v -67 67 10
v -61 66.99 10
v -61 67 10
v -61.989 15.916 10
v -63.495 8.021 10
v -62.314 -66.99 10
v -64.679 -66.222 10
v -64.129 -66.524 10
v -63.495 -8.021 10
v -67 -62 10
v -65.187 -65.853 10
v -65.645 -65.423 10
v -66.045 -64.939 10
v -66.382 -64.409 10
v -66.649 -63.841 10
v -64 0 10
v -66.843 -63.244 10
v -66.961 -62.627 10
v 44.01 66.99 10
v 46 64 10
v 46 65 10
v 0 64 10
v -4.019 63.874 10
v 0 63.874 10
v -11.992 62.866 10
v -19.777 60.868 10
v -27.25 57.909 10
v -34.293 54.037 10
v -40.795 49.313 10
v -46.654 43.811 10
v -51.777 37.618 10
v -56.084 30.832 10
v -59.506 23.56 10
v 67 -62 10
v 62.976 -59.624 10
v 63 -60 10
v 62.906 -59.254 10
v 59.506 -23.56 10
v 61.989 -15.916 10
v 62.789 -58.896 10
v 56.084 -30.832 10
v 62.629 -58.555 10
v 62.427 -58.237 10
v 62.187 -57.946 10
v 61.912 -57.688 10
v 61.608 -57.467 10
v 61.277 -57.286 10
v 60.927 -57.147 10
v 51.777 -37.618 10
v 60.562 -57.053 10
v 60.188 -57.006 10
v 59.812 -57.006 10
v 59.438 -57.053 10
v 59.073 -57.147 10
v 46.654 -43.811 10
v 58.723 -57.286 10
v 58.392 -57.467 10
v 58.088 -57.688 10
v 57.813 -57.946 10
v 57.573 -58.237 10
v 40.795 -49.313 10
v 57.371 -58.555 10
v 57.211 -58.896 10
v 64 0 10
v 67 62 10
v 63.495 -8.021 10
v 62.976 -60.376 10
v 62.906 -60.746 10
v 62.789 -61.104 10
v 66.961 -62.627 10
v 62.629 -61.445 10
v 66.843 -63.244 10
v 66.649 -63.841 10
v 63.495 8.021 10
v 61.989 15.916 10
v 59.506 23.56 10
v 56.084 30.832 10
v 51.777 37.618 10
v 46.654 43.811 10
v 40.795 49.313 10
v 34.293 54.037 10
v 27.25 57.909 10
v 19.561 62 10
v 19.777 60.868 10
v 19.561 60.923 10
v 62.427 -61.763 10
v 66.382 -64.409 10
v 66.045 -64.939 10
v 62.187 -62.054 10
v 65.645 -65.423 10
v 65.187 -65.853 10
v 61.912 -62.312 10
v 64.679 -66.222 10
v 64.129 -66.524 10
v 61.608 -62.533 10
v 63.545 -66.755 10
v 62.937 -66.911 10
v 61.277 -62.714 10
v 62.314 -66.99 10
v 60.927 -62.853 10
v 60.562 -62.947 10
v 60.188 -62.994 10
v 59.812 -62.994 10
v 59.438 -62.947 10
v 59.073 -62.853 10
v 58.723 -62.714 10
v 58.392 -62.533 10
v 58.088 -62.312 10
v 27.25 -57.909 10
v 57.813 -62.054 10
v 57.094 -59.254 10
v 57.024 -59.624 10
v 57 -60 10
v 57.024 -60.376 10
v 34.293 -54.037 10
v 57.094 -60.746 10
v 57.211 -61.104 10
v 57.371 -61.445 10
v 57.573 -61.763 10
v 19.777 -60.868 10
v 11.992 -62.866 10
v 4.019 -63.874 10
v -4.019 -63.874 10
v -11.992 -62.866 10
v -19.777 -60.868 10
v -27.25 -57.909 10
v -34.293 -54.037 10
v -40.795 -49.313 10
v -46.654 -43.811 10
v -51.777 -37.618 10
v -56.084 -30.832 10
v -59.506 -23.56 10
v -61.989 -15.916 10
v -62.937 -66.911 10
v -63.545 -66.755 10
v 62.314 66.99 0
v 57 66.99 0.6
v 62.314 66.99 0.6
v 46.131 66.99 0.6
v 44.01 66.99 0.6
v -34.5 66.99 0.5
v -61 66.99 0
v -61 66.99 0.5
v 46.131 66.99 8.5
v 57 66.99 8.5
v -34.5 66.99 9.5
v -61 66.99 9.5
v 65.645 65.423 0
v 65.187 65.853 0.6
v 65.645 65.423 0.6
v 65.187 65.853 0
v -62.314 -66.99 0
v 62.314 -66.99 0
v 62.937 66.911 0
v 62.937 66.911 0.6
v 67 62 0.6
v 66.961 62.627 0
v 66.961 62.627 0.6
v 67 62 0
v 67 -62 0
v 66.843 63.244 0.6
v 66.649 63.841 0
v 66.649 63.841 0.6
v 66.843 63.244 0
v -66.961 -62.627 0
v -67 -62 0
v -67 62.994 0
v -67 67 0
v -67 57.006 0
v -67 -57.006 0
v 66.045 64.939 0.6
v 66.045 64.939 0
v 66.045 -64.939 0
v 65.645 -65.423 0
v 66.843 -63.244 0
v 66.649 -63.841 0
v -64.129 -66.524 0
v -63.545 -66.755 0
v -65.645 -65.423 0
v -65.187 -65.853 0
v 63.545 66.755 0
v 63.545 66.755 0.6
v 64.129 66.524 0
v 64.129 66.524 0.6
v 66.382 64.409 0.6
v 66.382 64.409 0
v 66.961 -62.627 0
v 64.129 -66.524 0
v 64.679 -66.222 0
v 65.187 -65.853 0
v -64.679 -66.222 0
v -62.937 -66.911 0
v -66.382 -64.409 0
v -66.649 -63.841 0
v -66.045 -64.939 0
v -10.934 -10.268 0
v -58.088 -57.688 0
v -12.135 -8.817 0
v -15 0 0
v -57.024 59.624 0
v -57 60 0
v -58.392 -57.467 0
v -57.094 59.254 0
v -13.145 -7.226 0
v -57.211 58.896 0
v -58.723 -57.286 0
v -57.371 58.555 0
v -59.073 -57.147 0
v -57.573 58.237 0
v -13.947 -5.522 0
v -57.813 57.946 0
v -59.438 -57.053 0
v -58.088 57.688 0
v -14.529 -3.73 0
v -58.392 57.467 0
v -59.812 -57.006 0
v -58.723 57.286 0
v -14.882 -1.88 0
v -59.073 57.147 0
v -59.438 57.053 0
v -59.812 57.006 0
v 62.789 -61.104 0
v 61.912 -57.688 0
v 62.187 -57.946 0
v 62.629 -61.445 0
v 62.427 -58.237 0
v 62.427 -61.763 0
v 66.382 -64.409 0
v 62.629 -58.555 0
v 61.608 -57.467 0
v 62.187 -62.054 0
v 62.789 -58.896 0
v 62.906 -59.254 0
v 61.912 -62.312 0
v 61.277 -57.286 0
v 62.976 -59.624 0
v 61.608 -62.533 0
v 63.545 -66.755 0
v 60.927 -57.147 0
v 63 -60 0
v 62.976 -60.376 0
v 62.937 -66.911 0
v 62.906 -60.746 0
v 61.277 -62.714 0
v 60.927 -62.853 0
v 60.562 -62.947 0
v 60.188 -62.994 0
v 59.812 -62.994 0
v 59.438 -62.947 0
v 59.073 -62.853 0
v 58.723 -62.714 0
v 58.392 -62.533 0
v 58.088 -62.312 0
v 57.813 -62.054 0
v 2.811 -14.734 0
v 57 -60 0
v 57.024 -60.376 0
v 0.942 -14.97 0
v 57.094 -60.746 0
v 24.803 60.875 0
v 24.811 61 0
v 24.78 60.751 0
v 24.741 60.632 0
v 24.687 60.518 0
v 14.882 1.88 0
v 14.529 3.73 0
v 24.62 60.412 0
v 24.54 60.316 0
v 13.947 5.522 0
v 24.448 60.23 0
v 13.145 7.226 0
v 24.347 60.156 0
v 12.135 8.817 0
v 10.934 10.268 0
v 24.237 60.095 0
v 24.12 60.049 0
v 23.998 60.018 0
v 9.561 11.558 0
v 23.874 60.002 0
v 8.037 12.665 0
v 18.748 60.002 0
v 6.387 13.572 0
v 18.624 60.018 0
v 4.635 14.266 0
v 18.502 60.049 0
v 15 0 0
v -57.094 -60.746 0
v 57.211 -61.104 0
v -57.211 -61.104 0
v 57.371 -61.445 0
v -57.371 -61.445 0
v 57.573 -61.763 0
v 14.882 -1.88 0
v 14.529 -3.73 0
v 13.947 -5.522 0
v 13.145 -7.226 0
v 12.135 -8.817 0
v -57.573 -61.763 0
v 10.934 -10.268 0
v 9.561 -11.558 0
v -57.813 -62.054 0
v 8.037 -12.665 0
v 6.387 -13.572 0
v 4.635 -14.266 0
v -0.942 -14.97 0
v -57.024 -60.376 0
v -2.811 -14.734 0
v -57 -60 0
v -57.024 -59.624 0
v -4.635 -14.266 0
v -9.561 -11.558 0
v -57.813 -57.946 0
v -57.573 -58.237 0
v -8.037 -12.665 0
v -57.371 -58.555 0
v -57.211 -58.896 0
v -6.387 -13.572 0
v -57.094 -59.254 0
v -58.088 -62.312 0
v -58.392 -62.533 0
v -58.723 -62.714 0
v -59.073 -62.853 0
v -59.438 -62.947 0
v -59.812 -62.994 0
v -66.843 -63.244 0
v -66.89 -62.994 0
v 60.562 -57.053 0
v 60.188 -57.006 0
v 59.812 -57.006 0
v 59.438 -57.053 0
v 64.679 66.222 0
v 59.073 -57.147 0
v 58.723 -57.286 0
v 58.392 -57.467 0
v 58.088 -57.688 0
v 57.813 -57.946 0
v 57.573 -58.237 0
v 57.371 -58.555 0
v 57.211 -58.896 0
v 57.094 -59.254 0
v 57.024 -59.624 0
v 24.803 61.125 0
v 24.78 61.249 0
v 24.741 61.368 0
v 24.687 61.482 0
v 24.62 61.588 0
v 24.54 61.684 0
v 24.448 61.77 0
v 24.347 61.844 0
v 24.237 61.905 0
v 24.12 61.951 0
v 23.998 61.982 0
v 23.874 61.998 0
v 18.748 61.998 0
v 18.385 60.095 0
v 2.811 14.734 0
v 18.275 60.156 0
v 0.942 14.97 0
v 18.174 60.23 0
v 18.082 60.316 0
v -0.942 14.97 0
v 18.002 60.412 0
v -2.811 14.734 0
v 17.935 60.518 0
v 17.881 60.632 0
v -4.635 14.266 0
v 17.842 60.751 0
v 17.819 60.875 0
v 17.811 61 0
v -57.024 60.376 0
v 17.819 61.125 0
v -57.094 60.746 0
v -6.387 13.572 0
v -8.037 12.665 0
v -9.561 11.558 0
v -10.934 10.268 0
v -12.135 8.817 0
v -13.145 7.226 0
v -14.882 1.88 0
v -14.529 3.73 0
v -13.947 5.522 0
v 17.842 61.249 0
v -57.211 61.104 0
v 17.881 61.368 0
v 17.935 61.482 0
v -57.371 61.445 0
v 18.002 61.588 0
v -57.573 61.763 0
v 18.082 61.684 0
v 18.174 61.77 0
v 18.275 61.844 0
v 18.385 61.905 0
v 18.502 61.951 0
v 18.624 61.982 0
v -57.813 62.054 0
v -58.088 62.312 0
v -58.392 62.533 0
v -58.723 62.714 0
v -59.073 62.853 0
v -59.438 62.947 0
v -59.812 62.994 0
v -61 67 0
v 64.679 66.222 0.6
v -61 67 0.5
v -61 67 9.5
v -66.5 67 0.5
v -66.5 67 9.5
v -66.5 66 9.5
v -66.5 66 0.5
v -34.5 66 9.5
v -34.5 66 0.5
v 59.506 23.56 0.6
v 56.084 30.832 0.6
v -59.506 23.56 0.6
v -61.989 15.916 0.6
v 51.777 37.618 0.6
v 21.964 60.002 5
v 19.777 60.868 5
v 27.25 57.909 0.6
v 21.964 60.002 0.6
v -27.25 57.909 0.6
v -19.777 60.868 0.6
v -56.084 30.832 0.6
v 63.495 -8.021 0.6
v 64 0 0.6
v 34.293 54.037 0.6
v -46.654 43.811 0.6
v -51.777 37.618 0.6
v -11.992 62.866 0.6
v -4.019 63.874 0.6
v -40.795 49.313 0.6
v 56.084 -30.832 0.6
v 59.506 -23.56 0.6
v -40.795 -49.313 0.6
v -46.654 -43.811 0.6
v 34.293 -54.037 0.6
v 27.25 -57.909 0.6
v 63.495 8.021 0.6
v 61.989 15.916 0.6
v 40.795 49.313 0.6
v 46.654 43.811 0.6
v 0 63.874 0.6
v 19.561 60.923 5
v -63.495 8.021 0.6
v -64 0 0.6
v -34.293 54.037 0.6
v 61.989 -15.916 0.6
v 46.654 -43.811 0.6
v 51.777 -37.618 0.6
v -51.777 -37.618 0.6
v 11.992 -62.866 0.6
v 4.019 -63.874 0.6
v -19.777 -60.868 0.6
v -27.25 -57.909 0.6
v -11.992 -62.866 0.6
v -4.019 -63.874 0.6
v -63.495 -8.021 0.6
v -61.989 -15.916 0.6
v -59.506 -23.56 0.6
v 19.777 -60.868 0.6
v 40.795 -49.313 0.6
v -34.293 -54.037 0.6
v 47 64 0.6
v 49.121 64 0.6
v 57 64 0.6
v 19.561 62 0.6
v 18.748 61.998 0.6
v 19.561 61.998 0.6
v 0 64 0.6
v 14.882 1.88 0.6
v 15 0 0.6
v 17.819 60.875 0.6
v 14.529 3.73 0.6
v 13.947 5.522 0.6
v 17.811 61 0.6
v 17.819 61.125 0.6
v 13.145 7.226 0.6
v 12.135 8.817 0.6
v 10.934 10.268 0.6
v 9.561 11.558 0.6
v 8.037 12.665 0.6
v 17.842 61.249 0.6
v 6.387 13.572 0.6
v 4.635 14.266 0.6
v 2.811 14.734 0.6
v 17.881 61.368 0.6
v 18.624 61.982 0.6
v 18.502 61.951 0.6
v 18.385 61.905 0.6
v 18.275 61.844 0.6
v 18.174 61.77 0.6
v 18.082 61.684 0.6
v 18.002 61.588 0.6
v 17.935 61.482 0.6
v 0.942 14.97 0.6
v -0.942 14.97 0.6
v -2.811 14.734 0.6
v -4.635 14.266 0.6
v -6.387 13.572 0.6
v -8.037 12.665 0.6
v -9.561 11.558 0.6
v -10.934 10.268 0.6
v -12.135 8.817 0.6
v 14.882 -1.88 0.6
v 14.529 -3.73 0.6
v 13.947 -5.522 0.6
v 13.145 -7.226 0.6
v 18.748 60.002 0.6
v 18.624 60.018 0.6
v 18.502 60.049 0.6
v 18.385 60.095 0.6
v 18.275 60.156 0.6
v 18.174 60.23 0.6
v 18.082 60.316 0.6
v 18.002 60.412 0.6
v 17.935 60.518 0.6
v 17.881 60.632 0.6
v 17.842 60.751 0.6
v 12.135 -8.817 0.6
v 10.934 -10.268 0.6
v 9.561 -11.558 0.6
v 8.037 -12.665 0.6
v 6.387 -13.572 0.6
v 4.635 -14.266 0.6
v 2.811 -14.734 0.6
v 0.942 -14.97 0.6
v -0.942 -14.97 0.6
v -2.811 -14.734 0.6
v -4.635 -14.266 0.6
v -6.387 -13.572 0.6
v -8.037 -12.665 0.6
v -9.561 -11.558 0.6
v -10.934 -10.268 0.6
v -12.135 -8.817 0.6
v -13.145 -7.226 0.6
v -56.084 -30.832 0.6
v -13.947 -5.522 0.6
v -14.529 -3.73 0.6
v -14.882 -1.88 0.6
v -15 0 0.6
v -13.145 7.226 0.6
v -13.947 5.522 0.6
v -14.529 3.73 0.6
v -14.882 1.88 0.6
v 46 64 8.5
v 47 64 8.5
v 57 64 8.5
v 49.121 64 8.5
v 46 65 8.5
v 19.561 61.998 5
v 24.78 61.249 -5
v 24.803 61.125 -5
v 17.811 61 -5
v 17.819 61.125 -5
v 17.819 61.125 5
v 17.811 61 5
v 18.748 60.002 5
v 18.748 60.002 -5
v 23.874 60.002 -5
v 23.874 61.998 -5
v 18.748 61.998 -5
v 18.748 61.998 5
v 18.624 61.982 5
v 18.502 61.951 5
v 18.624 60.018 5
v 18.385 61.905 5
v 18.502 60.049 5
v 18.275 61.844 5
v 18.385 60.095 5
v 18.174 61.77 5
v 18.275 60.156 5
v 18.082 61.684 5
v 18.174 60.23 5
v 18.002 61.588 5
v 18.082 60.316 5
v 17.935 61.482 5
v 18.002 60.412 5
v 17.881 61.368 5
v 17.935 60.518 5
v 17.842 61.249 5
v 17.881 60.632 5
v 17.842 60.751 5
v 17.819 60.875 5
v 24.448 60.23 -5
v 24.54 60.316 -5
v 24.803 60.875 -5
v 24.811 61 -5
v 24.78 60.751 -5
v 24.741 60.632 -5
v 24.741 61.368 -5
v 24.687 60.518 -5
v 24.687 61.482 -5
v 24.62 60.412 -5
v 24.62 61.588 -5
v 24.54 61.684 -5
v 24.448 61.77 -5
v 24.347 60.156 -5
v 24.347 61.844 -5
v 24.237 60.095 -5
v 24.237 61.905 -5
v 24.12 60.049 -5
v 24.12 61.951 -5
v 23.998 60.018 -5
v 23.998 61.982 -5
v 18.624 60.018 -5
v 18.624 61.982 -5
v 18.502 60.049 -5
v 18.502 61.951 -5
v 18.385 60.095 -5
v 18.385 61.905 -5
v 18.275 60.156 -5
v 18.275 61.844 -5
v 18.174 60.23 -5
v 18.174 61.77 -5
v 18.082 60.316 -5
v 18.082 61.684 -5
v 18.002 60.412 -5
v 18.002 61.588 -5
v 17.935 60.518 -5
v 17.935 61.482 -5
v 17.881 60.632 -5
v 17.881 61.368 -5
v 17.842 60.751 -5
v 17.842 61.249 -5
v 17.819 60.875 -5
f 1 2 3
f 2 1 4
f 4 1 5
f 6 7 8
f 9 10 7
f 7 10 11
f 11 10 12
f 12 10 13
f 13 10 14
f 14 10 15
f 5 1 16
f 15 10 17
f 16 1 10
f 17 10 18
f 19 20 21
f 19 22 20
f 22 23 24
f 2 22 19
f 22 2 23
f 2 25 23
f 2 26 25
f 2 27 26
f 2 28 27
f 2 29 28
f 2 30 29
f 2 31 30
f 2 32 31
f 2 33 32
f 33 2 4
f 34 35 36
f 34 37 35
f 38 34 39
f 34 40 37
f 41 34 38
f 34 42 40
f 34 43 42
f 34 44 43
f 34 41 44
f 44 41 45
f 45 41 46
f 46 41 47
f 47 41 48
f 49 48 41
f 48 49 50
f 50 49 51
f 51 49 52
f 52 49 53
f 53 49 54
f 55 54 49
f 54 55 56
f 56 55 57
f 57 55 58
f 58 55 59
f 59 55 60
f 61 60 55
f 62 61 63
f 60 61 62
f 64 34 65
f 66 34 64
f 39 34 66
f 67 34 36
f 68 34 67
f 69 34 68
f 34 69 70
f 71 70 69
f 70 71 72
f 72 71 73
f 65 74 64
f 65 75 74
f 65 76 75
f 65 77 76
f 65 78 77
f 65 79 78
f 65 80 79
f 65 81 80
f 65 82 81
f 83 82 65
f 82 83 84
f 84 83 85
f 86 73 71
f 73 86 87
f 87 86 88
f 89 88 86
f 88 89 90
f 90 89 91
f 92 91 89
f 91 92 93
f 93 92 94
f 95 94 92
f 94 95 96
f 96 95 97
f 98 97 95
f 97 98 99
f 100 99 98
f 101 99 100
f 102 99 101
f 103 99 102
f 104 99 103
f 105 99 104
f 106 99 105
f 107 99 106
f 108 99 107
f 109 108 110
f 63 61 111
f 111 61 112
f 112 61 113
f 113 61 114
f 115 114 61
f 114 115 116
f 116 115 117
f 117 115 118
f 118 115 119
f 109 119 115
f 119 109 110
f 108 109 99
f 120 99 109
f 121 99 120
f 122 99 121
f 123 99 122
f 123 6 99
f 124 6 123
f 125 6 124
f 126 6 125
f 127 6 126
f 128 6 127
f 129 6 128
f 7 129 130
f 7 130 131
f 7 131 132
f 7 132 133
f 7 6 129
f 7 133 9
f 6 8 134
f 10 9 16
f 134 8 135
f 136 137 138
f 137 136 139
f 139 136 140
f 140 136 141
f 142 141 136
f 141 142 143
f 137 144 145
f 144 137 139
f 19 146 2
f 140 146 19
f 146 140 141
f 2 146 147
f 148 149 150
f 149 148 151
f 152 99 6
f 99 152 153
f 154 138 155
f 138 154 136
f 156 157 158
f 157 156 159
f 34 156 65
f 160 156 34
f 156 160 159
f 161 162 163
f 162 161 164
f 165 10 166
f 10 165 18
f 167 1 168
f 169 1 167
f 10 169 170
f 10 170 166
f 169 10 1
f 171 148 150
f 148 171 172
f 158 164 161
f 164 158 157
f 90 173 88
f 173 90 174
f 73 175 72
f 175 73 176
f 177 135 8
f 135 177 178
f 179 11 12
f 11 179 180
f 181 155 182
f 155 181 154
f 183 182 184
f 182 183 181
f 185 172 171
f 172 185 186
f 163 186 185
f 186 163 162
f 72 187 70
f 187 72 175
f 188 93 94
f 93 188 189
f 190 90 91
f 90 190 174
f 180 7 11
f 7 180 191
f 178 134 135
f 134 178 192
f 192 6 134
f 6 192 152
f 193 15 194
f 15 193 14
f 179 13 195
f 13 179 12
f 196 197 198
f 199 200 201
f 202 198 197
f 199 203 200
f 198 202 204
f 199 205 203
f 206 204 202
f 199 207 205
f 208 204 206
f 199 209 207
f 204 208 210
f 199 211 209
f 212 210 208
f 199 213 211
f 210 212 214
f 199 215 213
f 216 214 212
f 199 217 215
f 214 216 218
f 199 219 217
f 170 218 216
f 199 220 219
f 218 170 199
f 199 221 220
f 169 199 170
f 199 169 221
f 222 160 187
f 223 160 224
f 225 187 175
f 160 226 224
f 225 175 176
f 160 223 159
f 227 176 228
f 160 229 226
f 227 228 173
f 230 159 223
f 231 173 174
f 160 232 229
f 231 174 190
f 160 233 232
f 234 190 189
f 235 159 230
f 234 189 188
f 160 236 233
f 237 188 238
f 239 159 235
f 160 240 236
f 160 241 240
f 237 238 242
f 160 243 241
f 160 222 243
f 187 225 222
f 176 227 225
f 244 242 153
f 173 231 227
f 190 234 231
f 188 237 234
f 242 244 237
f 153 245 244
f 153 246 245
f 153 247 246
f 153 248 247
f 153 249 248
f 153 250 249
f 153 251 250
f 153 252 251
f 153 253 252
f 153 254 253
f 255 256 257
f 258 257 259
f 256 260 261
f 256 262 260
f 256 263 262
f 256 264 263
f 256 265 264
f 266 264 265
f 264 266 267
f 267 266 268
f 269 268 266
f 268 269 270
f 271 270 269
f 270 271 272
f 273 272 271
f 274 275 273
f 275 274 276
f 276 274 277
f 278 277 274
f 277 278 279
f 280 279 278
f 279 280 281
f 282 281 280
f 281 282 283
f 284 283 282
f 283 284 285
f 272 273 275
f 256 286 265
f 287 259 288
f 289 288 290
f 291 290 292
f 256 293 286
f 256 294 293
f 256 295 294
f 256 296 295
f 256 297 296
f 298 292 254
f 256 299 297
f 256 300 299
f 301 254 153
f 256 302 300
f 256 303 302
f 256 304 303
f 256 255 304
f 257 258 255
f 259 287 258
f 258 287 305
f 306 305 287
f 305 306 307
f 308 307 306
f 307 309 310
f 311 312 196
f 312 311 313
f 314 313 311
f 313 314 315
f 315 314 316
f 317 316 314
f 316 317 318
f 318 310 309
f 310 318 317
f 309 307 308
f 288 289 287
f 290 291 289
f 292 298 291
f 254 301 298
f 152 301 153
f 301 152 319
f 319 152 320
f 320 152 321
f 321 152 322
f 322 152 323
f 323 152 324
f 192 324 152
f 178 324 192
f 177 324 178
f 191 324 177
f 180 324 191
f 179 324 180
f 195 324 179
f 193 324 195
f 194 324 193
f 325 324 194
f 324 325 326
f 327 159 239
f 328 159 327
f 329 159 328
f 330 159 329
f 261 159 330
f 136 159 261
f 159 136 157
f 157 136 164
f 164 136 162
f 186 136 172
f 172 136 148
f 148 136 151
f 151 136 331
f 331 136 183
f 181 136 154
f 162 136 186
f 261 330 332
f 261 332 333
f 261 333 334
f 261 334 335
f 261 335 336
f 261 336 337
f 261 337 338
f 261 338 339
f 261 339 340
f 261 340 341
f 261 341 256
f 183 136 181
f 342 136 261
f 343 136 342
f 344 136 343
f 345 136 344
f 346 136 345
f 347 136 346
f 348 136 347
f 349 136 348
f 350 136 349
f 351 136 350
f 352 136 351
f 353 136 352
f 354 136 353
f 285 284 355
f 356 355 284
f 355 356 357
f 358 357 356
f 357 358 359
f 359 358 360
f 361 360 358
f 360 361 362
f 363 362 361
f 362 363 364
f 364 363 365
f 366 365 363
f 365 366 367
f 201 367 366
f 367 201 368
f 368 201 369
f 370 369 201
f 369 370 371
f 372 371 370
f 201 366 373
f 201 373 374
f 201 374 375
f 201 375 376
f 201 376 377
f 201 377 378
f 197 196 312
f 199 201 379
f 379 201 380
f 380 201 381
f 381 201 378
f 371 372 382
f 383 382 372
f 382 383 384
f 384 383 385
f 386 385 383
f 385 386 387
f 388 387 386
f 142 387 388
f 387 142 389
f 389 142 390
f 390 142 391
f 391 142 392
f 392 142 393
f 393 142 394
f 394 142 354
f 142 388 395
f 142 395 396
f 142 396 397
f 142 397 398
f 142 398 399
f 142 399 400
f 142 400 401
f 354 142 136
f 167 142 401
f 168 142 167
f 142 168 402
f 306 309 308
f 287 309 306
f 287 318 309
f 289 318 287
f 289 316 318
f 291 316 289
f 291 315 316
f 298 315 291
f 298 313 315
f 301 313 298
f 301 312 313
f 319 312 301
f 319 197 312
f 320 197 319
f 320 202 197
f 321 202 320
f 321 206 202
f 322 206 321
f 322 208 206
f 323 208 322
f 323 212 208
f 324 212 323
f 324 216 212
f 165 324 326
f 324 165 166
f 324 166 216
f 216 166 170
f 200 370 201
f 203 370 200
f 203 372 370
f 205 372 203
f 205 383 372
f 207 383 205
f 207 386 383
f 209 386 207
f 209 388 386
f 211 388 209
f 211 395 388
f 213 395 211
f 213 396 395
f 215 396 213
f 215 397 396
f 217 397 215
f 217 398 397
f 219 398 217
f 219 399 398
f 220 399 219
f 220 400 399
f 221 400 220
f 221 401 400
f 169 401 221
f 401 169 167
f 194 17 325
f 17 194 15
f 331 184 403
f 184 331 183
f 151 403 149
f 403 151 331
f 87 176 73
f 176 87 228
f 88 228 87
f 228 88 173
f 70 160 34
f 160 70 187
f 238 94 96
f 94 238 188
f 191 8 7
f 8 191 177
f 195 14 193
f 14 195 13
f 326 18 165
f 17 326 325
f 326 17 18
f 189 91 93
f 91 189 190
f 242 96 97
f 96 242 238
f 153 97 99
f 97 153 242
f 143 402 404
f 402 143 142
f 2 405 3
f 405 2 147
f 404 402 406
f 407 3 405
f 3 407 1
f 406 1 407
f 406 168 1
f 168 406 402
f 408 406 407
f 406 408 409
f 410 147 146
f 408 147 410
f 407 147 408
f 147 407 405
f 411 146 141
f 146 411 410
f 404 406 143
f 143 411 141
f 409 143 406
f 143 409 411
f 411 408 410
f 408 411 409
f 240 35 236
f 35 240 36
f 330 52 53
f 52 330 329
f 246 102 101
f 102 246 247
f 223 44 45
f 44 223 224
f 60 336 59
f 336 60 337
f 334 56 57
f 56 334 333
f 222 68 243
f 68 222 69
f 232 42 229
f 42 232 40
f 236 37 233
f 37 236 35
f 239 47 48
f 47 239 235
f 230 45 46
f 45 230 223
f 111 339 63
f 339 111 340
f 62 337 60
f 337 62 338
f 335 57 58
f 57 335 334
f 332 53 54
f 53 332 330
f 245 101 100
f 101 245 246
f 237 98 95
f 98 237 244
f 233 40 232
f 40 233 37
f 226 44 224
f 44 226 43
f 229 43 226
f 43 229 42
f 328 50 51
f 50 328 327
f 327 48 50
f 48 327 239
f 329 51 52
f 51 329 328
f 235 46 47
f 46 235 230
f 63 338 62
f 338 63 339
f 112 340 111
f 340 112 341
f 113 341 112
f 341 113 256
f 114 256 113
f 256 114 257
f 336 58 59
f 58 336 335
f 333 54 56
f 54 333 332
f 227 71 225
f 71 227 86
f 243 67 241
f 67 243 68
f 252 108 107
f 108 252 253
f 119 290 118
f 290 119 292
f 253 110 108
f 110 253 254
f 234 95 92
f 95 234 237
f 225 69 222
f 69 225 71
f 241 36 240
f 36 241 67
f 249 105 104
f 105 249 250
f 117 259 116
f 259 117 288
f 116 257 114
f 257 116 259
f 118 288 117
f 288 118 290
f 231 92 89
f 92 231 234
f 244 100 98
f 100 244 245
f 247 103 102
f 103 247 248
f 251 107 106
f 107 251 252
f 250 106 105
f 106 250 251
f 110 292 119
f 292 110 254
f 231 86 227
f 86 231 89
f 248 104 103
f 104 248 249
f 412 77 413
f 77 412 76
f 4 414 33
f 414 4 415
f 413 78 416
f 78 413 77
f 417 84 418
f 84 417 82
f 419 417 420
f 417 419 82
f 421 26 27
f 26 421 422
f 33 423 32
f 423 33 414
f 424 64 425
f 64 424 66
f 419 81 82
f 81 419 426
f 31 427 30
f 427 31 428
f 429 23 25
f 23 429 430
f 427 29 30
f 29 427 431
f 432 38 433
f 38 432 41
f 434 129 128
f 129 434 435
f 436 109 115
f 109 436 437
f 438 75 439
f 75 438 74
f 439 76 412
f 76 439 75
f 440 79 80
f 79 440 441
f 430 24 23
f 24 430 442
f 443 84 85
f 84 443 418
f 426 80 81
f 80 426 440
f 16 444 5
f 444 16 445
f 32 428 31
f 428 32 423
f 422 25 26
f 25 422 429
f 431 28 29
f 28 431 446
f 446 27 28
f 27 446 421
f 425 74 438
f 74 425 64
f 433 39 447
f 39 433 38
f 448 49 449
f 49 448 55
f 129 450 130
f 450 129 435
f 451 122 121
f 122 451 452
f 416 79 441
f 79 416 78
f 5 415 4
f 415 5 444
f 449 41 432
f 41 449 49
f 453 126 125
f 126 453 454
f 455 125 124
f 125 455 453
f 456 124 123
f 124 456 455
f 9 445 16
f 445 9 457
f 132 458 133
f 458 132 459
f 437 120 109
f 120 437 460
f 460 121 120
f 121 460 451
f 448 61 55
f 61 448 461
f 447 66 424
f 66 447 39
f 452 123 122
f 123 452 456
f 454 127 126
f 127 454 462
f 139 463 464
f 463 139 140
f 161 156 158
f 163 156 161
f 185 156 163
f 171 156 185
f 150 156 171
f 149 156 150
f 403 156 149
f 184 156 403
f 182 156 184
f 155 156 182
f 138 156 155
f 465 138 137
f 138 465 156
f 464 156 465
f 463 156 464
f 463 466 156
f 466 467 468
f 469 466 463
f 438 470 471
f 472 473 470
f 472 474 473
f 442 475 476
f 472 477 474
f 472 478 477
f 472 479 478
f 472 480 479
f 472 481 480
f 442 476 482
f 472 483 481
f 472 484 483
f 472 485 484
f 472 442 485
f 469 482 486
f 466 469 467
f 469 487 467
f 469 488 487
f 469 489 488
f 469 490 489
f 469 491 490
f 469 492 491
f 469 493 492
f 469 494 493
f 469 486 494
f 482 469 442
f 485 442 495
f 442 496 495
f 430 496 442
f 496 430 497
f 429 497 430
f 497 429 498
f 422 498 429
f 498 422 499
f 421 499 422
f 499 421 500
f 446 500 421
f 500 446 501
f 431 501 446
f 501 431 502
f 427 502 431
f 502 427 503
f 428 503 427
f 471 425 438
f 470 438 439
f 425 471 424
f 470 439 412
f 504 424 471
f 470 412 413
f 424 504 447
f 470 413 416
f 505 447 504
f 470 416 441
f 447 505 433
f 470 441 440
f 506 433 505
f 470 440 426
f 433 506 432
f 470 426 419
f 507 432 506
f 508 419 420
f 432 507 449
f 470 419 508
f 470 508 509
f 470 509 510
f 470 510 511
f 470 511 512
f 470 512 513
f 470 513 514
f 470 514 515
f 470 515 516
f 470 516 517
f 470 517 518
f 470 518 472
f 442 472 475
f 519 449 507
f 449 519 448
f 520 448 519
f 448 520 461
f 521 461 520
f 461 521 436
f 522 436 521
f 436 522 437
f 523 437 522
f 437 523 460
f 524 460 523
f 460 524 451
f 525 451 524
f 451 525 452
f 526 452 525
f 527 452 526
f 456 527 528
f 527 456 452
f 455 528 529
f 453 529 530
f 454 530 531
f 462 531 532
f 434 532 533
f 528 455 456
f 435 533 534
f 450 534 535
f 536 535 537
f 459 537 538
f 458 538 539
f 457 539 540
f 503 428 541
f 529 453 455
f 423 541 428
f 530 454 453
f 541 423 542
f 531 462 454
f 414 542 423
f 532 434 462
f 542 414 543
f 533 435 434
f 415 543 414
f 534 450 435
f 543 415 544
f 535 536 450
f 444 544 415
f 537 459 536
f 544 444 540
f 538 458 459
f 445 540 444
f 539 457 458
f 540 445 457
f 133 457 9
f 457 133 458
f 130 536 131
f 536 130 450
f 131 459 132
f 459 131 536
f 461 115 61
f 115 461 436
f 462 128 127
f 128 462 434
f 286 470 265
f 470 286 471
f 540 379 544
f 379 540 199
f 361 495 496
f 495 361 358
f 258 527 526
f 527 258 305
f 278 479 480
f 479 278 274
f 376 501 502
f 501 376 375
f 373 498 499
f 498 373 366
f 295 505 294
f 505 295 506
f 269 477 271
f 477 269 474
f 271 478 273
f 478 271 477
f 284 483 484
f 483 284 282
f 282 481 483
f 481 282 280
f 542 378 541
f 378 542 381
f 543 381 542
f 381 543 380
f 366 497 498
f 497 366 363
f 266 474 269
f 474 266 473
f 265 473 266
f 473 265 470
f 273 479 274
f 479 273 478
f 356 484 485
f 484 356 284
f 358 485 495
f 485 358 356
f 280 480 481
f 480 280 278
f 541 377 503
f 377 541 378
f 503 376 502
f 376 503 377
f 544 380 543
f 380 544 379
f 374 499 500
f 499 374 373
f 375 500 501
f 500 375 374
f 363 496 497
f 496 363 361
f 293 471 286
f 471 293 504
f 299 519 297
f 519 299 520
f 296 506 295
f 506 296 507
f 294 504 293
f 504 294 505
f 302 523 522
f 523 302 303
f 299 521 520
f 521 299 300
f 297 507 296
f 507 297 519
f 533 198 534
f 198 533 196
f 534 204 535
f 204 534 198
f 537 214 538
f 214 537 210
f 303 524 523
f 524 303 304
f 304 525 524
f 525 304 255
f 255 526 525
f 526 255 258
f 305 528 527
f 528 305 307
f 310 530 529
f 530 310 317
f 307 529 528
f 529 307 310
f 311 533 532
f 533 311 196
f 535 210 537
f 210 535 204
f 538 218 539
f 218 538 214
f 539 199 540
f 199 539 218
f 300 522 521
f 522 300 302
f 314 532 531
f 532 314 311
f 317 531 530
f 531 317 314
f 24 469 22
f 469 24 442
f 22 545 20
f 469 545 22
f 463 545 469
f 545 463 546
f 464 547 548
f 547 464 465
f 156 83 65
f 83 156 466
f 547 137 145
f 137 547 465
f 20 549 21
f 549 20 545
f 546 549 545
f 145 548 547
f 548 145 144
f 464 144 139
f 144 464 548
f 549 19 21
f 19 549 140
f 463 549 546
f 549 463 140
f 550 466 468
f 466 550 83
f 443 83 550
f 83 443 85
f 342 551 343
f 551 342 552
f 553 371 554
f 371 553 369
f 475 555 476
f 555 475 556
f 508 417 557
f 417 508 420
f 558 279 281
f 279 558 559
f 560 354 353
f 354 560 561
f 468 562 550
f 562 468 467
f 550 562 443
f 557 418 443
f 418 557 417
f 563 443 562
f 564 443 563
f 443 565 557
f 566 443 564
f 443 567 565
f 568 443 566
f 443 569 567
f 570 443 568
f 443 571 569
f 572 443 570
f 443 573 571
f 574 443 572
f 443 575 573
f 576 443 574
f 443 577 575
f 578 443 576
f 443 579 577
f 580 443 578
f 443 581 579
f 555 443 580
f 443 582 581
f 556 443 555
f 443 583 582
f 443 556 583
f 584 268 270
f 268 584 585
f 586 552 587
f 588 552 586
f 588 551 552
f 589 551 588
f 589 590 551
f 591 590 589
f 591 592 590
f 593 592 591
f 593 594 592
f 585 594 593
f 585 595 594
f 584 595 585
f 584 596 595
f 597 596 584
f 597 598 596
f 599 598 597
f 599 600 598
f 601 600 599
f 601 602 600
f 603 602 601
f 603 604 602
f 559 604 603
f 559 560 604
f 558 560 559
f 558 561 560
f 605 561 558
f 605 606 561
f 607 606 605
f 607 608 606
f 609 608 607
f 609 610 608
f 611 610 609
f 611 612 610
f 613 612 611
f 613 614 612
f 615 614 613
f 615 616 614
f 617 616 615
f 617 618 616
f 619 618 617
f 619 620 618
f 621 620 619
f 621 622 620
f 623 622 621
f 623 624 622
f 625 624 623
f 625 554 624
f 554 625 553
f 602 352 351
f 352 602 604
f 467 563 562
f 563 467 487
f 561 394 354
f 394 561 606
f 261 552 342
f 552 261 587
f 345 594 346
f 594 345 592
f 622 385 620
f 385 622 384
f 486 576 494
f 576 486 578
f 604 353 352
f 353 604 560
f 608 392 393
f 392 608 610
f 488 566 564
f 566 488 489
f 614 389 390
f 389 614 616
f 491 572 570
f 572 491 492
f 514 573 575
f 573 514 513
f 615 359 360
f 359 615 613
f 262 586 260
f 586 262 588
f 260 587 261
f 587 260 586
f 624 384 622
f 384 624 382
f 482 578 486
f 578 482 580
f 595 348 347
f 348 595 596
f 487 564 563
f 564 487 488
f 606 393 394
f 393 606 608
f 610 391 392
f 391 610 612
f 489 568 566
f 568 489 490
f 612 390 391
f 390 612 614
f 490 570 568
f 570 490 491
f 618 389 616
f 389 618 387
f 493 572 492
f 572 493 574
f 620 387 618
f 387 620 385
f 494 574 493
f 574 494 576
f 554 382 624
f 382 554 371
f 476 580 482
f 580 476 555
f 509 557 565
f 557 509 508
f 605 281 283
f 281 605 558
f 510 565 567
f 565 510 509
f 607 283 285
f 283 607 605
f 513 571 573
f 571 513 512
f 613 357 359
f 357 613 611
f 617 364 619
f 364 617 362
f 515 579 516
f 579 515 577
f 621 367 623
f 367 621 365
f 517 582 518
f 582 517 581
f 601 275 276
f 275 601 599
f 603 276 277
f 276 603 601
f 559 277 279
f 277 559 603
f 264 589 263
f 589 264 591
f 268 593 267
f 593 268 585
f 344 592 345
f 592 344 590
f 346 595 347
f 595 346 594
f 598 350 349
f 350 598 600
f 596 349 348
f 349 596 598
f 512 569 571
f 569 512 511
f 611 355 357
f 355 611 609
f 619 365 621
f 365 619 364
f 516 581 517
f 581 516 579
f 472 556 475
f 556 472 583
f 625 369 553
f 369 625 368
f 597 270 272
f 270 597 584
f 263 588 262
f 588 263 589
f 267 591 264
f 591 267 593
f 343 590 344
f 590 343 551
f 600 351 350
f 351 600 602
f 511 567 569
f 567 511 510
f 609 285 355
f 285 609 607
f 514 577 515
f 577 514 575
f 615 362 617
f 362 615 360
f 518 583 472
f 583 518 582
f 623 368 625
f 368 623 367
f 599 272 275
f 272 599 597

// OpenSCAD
$fn = 50;


union() {
	difference() {
		union() {
			hull() {
				translate(v = [-62.0000000000, 62.0000000000, 0]) {
					cylinder(h = 10, r = 5);
				}
				translate(v = [62.0000000000, 62.0000000000, 0]) {
					cylinder(h = 10, r = 5);
				}
				translate(v = [-62.0000000000, -62.0000000000, 0]) {
					cylinder(h = 10, r = 5);
				}
				translate(v = [62.0000000000, -62.0000000000, 0]) {
					cylinder(h = 10, r = 5);
				}
			}
			translate(v = [-67.0000000000, 61.0000000000, 0]) {
				cube(size = [6, 6, 10]);
			}
		}
		union() {
			translate(v = [-67.5000000000, -60.0000000000, -250.0000000000]) {
				rotate(a = [0, 0, 0]) {
					difference() {
						union() {
							hull() {
								translate(v = [7.5000000000, 0, 0]) {
									cylinder(h = 250, r = 3.0000000000, r1 = 3.0000000000, r2 = 3.0000000000);
								}
								translate(v = [-7.5000000000, 0, 0]) {
									cylinder(h = 250, r = 3.0000000000, r1 = 3.0000000000, r2 = 3.0000000000);
								}
							}
						}
						union();
					}
				}
			}
			translate(v = [-67.5000000000, 60.0000000000, -250.0000000000]) {
				rotate(a = [0, 0, 0]) {
					difference() {
						union() {
							hull() {
								translate(v = [7.5000000000, 0, 0]) {
									cylinder(h = 250, r = 3.0000000000, r1 = 3.0000000000, r2 = 3.0000000000);
								}
								translate(v = [-7.5000000000, 0, 0]) {
									cylinder(h = 250, r = 3.0000000000, r1 = 3.0000000000, r2 = 3.0000000000);
								}
							}
						}
						union();
					}
				}
			}
			translate(v = [-66.5000000000, 66.0000000000, 0.5000000000]) {
				cube(size = [32, 1, 9.0000000000]);
			}
			translate(v = [60.0000000000, -60.0000000000, 0]) {
				cylinder(h = 100, r = 3.0000000000);
			}
			translate(v = [0, 0, 0.6000000000]) {
				cylinder(h = 12.4000000000, r = 64.0000000000);
			}
			translate(v = [0, 0, -5.0000000000]) {
				cylinder(h = 10, r = 15.0000000000);
			}
			translate(v = [0.0000000000, 62.0000000000, 0.6000000000]) {
				cube(size = [67.0000000000, 2, 12.4000000000]);
			}
			translate(v = [57.0000000000, 62.0000000000, 0.6000000000]) {
				cube(size = [10, 5, 12.4000000000]);
			}
			translate(v = [46.0000000000, 62.0000000000, 8.5000000000]) {
				cube(size = [21, 5, 1.5000000000]);
			}
			translate(v = [43.2500000000, 67.7500000000, 0.6000000000]) {
				rotate(a = [0, 0, -45]) {
					cube(size = [7.5000000000, 1.5000000000, 12.4000000000]);
				}
			}
			translate(v = [12.0610000000, 60.0000000000, 0.6000000000]) {
				cube(size = [7.5000000000, 2, 9.4000000000]);
			}
		}
	}
	union() {
		translate(v = [21.3110000000, 61.0000000000, -5.0000000000]) {
			rotate(a = [0, 0, 0]) {
				difference() {
					union() {
						#hull() {
							#translate(v = [2.5000000000, 0, 0]) {
								cylinder(h = 10, r = 1.0000000000, r1 = 1.0000000000, r2 = 1.0000000000);
							}
							#translate(v = [-2.5000000000, 0, 0]) {
								cylinder(h = 10, r = 1.0000000000, r1 = 1.0000000000, r2 = 1.0000000000);
							}
						}
					}
					union();
				}
			}
		}
	}
}
